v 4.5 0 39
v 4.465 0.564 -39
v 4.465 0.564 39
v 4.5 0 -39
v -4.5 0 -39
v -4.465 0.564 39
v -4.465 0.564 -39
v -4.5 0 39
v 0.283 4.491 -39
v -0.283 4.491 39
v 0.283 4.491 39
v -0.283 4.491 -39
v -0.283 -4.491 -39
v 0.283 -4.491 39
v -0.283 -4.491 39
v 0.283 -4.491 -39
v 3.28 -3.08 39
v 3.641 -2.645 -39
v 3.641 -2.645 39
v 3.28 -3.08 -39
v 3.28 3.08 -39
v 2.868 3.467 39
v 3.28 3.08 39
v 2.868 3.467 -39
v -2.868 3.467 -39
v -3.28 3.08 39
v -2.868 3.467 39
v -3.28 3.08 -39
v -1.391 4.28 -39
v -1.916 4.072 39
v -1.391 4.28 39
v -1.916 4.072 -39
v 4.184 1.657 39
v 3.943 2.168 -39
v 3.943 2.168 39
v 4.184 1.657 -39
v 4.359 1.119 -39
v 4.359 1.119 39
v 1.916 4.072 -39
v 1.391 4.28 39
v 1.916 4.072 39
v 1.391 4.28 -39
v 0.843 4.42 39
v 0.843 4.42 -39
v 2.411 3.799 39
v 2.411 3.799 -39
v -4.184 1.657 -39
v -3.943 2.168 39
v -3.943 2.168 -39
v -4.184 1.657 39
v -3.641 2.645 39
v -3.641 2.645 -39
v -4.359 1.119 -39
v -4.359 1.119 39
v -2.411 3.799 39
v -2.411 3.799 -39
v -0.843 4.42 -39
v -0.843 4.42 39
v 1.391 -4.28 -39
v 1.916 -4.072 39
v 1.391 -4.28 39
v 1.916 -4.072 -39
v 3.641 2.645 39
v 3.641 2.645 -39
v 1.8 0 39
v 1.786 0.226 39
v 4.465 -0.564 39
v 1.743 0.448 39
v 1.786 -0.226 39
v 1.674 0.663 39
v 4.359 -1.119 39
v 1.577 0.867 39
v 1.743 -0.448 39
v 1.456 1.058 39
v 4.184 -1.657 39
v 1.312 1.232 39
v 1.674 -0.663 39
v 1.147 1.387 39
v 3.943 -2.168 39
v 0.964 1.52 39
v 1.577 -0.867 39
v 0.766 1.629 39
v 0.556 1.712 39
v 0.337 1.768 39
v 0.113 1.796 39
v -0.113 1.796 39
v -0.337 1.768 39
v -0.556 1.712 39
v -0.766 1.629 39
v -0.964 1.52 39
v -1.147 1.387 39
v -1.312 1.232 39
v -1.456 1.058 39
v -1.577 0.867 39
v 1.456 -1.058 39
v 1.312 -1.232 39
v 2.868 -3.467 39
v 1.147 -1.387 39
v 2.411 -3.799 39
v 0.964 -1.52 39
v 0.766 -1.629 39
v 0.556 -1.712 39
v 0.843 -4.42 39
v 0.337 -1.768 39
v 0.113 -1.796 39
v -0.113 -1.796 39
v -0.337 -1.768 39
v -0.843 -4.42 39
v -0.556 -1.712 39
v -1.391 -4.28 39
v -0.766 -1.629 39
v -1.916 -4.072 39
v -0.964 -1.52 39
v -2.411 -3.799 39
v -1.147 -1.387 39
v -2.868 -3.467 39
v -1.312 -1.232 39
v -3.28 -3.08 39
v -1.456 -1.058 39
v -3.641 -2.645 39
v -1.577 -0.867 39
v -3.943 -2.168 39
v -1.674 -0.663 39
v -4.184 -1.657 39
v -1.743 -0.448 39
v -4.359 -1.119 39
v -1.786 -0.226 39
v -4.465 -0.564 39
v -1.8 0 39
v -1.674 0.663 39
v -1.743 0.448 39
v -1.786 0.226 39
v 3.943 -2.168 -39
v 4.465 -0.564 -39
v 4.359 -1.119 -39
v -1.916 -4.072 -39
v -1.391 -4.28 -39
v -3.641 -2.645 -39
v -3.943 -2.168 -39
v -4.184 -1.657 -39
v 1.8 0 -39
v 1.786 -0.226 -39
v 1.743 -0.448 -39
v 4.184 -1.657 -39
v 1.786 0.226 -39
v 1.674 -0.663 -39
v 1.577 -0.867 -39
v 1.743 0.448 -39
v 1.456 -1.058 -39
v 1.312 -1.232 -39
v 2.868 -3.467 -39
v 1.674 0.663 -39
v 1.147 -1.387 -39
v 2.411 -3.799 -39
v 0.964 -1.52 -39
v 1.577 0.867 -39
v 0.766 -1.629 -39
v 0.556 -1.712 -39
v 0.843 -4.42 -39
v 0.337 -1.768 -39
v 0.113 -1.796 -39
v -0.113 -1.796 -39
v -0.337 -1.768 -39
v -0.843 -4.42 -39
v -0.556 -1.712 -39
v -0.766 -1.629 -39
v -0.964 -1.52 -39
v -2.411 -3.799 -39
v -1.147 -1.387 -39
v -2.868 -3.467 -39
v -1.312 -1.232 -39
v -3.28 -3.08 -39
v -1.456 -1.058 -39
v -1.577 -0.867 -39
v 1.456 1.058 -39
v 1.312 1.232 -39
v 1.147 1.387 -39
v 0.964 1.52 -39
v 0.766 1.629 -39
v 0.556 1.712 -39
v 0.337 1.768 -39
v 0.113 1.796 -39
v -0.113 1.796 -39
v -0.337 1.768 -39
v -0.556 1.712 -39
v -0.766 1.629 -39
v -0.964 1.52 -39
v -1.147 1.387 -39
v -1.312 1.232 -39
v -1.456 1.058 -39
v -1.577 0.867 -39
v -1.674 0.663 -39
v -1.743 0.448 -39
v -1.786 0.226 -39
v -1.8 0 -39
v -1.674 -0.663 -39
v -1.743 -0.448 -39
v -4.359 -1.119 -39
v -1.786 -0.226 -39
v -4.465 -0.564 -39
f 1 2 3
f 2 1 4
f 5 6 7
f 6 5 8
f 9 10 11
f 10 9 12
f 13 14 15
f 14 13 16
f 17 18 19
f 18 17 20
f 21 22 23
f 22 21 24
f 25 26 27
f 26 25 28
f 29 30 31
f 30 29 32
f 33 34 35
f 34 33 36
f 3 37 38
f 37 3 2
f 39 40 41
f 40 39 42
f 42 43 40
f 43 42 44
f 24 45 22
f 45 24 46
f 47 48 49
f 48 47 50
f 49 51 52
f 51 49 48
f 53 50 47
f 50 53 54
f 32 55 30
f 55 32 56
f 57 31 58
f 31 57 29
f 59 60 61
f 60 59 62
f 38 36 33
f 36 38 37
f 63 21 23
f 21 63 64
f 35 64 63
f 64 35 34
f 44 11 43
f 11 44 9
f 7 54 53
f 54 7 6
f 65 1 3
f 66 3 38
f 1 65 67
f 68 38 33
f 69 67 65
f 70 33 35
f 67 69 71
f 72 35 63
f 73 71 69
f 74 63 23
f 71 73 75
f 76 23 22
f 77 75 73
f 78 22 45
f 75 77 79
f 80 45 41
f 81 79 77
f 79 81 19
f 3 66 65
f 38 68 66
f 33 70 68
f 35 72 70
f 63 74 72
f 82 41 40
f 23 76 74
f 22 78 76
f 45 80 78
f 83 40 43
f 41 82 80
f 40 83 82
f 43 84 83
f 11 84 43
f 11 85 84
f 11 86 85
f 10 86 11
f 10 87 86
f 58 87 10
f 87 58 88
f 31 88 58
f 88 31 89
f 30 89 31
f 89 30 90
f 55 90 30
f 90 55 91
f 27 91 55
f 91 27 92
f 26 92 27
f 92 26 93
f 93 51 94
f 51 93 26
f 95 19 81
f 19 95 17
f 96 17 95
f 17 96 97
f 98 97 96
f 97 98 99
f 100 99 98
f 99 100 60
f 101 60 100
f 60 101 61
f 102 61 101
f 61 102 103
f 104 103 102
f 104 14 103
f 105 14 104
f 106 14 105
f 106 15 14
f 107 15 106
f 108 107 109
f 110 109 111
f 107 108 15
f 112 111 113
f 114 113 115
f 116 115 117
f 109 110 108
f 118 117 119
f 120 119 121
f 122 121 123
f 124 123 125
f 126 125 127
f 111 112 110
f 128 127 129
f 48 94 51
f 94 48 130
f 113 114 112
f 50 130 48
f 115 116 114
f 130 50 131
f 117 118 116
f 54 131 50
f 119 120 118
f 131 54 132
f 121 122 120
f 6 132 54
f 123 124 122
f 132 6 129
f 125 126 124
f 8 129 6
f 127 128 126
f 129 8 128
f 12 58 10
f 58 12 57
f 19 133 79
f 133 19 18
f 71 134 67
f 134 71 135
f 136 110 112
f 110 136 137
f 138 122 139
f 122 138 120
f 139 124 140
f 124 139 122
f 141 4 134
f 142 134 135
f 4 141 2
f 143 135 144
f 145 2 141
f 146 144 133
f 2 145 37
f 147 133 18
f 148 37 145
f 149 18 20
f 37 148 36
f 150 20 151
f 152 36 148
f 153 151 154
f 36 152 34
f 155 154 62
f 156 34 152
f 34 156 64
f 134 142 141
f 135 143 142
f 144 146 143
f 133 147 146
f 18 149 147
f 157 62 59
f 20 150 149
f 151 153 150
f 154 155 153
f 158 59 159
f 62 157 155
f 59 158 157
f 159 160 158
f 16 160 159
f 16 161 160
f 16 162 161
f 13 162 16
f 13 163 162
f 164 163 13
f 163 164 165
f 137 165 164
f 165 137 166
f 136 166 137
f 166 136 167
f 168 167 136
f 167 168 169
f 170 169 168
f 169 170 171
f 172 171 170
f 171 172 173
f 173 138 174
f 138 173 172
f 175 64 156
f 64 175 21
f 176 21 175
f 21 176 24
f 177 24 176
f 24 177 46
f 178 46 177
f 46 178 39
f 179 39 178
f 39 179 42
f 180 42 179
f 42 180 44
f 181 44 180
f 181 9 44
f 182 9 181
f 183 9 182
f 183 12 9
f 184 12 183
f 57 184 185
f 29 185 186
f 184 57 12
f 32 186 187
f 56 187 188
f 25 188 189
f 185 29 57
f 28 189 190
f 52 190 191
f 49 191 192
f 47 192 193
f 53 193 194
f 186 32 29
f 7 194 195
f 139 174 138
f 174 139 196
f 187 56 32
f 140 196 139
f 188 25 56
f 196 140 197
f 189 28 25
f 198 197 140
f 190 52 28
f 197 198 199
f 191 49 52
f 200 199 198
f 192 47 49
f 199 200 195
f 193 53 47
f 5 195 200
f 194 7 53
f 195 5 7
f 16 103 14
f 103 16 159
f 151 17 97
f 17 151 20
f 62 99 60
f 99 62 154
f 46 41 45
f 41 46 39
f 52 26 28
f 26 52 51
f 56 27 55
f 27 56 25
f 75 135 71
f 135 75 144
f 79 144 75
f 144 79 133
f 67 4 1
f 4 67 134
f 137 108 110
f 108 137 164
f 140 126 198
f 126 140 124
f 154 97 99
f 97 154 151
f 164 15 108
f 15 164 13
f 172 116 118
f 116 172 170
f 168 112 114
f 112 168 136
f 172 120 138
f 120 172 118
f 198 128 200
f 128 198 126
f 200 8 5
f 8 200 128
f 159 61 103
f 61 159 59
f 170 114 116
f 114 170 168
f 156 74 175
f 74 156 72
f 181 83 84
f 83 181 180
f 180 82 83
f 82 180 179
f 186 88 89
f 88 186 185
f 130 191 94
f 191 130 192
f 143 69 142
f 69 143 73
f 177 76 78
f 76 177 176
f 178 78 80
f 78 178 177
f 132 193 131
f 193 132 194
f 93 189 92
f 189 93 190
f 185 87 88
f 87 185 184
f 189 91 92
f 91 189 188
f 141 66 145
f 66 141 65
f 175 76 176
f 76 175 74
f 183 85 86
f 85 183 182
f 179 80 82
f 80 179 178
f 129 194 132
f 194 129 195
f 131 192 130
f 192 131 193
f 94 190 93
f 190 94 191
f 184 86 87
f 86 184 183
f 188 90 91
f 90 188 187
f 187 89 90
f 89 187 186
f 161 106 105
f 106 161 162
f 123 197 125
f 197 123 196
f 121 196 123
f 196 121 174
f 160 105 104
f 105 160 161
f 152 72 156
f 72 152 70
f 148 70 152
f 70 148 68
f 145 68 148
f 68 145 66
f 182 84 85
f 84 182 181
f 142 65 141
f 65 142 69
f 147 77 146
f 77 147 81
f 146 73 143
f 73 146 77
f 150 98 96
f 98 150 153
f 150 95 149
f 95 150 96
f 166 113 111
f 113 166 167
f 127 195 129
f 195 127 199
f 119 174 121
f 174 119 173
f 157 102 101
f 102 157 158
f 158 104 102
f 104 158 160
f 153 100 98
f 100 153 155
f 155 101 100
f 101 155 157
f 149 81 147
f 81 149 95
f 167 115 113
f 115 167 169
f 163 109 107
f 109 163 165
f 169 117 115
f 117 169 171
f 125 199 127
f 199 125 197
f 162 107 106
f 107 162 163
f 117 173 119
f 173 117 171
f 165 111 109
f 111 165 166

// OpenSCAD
$fn = 50;


difference() {
	union() {
		translate(v = [0, 0, -39.0000000000]) {
			cylinder(h = 78, r = 4.5000000000);
		}
	}
	union() {
		translate(v = [0, 0, -100.0000000000]) {
			cylinder(h = 200, r = 1.8000000000);
		}
	}
}
